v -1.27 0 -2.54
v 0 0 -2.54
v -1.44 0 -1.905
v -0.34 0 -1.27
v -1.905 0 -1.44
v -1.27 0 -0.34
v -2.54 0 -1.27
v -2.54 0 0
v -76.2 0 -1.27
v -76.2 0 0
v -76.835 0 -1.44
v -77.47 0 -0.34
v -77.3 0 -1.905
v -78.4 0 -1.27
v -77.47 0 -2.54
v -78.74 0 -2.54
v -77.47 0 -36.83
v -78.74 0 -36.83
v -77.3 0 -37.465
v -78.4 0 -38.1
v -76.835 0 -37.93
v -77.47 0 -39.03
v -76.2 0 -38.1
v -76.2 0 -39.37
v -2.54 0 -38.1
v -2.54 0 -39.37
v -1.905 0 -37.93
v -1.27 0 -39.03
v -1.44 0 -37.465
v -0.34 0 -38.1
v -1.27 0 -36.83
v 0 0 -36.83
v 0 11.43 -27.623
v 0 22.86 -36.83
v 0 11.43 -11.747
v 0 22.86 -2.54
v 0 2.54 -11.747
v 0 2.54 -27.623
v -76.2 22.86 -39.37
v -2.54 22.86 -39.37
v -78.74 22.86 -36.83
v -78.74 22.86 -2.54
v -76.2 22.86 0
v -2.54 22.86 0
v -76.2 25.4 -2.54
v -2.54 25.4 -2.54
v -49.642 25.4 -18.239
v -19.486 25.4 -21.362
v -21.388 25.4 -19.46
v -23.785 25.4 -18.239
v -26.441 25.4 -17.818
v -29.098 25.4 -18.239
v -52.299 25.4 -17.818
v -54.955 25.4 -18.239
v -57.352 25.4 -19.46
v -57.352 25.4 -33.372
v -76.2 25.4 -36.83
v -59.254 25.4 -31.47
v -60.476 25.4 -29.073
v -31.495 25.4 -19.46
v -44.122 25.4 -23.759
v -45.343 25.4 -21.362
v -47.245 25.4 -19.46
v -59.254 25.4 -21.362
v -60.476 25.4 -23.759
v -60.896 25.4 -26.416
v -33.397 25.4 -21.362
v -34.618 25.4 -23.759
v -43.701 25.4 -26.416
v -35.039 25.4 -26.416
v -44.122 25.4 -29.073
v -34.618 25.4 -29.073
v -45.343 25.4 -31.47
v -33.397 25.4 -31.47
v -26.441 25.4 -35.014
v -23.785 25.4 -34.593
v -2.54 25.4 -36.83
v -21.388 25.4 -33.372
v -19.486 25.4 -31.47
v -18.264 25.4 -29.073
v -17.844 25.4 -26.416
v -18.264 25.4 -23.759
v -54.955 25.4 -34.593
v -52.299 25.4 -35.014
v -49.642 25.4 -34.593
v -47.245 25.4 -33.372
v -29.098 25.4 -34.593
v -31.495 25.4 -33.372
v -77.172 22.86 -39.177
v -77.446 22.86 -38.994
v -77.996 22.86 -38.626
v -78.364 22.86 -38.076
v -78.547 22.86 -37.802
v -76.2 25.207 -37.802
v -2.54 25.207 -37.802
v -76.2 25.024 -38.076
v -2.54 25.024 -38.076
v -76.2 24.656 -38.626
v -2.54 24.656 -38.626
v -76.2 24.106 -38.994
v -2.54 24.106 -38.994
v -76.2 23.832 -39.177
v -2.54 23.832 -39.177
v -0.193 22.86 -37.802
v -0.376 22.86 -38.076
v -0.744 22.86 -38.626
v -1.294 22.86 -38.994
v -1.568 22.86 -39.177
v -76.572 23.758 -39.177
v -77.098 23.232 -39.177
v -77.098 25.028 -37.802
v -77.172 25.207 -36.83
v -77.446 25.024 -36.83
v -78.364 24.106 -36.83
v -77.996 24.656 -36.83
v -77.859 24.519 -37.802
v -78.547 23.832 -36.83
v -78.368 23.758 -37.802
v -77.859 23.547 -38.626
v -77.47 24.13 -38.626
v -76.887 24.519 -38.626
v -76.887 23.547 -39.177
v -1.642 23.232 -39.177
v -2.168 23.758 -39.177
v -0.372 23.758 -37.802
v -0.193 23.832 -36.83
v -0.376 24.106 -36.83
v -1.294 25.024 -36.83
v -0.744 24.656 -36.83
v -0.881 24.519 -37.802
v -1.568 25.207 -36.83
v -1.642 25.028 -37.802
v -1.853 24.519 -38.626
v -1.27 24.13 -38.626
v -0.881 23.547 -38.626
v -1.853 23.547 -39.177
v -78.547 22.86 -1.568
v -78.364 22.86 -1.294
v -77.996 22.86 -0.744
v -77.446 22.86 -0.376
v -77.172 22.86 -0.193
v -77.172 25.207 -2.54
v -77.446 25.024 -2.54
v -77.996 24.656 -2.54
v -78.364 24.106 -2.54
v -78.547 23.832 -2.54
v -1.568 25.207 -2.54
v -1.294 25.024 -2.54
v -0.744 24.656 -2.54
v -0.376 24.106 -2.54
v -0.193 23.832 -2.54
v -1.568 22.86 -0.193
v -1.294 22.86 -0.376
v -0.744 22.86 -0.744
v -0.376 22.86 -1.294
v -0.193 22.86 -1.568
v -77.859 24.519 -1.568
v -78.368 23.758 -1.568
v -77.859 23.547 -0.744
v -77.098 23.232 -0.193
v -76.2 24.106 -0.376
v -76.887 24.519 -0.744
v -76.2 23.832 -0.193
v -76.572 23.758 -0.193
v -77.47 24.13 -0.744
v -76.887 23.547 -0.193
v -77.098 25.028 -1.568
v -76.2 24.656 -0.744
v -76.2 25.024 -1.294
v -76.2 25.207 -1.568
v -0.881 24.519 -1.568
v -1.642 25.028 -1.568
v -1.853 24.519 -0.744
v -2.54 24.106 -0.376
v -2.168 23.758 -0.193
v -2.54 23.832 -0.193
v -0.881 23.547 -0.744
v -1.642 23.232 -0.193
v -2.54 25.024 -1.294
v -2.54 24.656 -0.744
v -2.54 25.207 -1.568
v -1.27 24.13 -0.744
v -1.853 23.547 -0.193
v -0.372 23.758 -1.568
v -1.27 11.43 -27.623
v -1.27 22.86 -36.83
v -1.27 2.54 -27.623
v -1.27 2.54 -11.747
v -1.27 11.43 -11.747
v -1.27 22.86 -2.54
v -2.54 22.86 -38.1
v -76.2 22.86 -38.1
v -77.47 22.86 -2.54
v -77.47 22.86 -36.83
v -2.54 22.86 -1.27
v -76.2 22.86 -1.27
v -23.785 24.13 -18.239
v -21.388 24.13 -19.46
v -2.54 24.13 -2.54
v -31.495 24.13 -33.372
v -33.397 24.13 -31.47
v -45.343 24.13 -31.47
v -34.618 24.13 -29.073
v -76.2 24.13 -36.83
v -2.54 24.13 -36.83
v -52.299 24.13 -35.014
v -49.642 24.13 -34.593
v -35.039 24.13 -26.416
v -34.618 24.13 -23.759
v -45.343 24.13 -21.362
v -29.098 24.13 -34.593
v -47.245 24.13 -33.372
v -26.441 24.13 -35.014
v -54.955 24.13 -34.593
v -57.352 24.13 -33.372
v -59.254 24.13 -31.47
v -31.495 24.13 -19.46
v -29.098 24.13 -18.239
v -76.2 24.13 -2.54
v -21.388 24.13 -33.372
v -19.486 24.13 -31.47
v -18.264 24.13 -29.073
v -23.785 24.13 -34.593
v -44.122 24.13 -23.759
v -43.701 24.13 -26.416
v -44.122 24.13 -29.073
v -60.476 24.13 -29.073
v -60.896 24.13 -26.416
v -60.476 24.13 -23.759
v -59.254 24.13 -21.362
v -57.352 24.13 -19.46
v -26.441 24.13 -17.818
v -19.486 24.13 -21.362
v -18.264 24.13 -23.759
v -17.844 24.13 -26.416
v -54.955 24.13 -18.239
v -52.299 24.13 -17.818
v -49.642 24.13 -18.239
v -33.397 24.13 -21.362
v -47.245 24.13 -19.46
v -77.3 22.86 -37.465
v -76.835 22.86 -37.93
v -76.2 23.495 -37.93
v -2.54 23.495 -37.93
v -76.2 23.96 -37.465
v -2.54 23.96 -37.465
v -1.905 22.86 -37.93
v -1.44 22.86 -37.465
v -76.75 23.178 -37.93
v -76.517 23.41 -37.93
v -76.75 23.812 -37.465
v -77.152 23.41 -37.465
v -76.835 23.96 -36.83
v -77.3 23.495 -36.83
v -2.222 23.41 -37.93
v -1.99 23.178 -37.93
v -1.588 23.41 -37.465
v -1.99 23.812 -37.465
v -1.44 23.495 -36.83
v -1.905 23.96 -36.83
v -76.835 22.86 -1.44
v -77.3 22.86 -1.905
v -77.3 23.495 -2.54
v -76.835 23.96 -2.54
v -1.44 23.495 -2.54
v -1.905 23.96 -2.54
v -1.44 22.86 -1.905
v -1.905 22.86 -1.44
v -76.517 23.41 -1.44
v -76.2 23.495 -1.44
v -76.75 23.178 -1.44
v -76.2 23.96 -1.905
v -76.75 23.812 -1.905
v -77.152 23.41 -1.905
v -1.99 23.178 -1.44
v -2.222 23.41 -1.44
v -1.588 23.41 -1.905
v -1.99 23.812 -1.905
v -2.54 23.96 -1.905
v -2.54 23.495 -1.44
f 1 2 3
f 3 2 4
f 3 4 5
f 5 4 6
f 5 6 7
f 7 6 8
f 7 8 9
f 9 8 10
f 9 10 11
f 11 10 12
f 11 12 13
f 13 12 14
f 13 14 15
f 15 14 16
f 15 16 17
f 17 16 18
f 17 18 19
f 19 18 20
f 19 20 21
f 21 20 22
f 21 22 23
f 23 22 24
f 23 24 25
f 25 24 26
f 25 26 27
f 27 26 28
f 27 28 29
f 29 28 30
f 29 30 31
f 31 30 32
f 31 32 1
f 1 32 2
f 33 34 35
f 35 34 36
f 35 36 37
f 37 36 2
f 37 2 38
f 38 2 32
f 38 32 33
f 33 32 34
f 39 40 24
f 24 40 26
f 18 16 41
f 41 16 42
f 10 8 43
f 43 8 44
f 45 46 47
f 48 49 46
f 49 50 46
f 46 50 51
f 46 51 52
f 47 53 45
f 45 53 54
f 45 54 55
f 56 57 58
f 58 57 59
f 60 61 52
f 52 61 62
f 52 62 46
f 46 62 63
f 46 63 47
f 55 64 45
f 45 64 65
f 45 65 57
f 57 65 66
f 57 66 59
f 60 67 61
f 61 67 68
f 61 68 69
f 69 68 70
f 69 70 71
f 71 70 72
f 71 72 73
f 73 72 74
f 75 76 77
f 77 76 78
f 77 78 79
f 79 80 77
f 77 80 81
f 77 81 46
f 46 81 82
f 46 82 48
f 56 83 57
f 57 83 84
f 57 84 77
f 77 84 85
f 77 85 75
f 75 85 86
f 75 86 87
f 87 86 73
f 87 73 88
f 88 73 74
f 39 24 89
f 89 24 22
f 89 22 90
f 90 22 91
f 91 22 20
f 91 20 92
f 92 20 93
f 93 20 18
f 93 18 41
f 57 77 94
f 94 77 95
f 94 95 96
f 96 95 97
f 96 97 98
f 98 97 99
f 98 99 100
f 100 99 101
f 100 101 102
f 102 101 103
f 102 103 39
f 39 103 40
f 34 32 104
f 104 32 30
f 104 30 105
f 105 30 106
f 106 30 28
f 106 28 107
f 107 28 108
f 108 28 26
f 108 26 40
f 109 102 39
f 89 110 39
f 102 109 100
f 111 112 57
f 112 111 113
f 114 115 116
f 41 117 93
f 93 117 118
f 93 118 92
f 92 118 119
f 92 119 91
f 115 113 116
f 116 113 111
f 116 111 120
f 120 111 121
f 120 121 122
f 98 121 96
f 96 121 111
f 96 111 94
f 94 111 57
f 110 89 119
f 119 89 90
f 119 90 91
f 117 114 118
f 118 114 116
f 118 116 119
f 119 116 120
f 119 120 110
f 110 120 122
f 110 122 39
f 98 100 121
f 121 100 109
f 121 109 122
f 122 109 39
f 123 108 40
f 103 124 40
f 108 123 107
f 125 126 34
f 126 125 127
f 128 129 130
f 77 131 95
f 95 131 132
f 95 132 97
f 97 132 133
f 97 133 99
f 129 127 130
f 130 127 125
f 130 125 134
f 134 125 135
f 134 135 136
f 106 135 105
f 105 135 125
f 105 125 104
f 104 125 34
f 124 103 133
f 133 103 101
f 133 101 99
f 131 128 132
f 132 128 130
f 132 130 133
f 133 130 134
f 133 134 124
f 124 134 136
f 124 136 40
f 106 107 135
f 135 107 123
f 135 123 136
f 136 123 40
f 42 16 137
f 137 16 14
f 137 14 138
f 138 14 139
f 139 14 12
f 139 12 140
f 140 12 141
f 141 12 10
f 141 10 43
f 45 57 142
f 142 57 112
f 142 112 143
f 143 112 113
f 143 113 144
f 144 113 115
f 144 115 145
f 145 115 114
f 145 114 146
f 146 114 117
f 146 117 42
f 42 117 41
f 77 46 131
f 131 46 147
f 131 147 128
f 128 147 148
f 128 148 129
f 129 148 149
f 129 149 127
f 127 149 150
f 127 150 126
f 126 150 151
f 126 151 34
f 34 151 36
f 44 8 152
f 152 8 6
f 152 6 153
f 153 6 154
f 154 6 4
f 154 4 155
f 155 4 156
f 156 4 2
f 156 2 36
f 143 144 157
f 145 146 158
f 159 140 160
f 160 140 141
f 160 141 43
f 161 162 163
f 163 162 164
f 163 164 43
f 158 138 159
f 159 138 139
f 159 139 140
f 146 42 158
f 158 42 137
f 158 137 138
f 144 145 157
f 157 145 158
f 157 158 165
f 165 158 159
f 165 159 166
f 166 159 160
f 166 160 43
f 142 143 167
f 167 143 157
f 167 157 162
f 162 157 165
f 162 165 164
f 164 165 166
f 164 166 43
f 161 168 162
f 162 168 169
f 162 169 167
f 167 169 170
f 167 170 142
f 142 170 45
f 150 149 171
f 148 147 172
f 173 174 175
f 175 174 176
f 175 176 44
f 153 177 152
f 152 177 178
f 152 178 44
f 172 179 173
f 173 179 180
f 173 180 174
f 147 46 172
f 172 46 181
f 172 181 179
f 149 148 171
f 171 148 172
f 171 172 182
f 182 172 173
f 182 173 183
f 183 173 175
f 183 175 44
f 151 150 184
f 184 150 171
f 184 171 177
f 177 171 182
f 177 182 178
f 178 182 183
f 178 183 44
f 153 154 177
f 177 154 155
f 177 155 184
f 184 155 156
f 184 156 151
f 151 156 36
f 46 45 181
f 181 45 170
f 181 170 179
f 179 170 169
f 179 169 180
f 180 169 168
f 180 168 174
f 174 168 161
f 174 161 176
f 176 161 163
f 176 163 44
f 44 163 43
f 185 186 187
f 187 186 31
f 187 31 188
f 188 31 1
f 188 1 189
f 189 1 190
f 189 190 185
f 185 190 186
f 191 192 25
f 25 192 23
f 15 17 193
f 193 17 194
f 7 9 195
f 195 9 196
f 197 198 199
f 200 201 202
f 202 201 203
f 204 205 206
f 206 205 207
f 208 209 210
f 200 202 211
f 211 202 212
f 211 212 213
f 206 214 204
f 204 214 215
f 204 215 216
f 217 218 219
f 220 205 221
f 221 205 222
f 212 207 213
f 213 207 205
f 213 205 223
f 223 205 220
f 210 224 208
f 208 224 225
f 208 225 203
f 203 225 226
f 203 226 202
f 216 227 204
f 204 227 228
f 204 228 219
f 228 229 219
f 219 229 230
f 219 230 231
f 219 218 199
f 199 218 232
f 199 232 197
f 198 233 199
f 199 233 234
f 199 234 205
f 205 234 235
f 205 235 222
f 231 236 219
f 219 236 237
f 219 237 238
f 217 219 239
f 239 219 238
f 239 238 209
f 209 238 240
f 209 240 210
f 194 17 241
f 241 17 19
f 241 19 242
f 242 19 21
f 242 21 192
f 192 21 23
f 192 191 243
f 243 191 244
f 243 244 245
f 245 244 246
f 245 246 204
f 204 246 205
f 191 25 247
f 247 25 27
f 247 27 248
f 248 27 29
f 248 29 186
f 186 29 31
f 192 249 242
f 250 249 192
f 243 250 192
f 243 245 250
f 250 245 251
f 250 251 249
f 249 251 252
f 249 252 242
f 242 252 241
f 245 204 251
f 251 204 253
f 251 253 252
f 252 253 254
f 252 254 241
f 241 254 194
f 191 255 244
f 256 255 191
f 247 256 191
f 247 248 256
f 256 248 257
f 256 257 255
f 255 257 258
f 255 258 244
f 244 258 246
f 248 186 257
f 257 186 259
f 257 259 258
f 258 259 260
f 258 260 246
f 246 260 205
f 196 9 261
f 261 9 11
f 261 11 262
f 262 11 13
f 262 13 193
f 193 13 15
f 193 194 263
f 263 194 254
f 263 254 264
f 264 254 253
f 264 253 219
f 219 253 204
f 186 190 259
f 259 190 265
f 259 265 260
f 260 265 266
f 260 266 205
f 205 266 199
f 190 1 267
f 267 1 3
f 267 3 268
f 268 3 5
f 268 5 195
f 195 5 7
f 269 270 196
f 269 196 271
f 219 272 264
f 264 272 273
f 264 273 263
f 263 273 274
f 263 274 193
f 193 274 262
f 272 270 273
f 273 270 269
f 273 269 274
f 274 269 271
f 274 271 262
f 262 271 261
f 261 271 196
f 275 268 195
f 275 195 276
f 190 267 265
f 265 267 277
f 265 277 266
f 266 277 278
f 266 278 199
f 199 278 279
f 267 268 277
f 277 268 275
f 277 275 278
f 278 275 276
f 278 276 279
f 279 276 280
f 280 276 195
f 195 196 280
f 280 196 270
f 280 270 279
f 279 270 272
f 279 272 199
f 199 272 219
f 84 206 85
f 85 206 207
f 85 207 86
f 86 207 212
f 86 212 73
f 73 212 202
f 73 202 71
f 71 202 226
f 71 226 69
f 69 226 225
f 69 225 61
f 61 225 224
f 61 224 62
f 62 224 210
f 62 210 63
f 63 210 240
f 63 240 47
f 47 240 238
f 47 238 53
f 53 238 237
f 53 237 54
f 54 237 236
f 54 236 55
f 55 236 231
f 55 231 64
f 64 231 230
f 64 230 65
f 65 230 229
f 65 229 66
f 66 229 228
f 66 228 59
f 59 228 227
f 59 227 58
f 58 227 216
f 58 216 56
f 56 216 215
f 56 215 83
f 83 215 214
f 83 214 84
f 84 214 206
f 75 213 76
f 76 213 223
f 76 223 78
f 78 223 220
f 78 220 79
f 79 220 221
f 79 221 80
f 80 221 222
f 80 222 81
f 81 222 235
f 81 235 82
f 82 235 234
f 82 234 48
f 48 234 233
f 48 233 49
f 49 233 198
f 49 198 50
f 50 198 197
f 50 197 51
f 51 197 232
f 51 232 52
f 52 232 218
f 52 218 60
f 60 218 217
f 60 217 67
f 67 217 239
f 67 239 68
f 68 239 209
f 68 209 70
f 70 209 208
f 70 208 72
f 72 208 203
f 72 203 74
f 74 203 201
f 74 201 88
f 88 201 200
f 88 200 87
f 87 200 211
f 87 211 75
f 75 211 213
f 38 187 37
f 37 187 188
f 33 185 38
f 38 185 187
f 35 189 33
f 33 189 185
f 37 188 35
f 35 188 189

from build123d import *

# Parameters (mm, degrees)
SKETCH1_W           = 78.74
SKETCH1_H           = 39.37
BOSS_EXTRUDE1_DEPTH = 25.4
FILLET1_R           = 2.54
SHELL1_T            = -1.27
SKETCH2_R           = 8.5979
CUT_EXTRUDE1_DEPTH  = 92.281111956
SKETCH3_W           = 15.875
SKETCH3_H           = 8.89
CUT_EXTRUDE2_DEPTH  = 1.27


with BuildPart() as part:
    # Sketch1 → Boss-Extrude1 (new body)
    with BuildSketch(Plane(origin=(0, 0, 0), x_dir=(1, 0, 0), z_dir=(0, 1, 0))):
        with Locations((-39.37, 19.685)):
            Rectangle(SKETCH1_W, SKETCH1_H)
    extrude(amount=BOSS_EXTRUDE1_DEPTH)

    # Fillet1
    fillet1_edges = [part.edges().sort_by_distance(p)[0] for p in [
        (-78.74, 25.4, -19.685),
        (-39.37, 25.4, 0),
        (0, 25.4, -19.685),
        (-39.37, 25.4, -39.37),
        (0, 12.7, 0),
        (-78.74, 12.7, 0),
        (-78.74, 12.7, -39.37),
        (0, 12.7, -39.37),
    ]]
    fillet(fillet1_edges, radius=FILLET1_R)

    # Shell1
    shell1_openings = [part.faces().sort_by_distance(p)[0] for p in [
        (-39.37, 0, -19.685),
    ]]
    offset(amount=SHELL1_T, openings=shell1_openings, kind=Kind.INTERSECTION)

    # Sketch2 → Cut-Extrude1 (cut, through all)
    with BuildSketch(Plane.XZ.offset(-24.13)):
        with Locations(Location((-52.2986, -26.416, 0), (0, 0, 270))):
            Circle(SKETCH2_R)
        with Locations(Location((-26.4414, -26.416, 0), (0, 0, 270))):
            Circle(SKETCH2_R)
    extrude(amount=-CUT_EXTRUDE1_DEPTH, mode=Mode.SUBTRACT)

    # Sketch3 → Cut-Extrude2 (cut)
    with BuildSketch(Plane(origin=(0, 0, 0), x_dir=(0, 0, -1), z_dir=(1, 0, 0))):
        with Locations((19.685, 6.985)):
            Rectangle(SKETCH3_W, SKETCH3_H)
    extrude(amount=-CUT_EXTRUDE2_DEPTH, mode=Mode.SUBTRACT)


solid = part.part
